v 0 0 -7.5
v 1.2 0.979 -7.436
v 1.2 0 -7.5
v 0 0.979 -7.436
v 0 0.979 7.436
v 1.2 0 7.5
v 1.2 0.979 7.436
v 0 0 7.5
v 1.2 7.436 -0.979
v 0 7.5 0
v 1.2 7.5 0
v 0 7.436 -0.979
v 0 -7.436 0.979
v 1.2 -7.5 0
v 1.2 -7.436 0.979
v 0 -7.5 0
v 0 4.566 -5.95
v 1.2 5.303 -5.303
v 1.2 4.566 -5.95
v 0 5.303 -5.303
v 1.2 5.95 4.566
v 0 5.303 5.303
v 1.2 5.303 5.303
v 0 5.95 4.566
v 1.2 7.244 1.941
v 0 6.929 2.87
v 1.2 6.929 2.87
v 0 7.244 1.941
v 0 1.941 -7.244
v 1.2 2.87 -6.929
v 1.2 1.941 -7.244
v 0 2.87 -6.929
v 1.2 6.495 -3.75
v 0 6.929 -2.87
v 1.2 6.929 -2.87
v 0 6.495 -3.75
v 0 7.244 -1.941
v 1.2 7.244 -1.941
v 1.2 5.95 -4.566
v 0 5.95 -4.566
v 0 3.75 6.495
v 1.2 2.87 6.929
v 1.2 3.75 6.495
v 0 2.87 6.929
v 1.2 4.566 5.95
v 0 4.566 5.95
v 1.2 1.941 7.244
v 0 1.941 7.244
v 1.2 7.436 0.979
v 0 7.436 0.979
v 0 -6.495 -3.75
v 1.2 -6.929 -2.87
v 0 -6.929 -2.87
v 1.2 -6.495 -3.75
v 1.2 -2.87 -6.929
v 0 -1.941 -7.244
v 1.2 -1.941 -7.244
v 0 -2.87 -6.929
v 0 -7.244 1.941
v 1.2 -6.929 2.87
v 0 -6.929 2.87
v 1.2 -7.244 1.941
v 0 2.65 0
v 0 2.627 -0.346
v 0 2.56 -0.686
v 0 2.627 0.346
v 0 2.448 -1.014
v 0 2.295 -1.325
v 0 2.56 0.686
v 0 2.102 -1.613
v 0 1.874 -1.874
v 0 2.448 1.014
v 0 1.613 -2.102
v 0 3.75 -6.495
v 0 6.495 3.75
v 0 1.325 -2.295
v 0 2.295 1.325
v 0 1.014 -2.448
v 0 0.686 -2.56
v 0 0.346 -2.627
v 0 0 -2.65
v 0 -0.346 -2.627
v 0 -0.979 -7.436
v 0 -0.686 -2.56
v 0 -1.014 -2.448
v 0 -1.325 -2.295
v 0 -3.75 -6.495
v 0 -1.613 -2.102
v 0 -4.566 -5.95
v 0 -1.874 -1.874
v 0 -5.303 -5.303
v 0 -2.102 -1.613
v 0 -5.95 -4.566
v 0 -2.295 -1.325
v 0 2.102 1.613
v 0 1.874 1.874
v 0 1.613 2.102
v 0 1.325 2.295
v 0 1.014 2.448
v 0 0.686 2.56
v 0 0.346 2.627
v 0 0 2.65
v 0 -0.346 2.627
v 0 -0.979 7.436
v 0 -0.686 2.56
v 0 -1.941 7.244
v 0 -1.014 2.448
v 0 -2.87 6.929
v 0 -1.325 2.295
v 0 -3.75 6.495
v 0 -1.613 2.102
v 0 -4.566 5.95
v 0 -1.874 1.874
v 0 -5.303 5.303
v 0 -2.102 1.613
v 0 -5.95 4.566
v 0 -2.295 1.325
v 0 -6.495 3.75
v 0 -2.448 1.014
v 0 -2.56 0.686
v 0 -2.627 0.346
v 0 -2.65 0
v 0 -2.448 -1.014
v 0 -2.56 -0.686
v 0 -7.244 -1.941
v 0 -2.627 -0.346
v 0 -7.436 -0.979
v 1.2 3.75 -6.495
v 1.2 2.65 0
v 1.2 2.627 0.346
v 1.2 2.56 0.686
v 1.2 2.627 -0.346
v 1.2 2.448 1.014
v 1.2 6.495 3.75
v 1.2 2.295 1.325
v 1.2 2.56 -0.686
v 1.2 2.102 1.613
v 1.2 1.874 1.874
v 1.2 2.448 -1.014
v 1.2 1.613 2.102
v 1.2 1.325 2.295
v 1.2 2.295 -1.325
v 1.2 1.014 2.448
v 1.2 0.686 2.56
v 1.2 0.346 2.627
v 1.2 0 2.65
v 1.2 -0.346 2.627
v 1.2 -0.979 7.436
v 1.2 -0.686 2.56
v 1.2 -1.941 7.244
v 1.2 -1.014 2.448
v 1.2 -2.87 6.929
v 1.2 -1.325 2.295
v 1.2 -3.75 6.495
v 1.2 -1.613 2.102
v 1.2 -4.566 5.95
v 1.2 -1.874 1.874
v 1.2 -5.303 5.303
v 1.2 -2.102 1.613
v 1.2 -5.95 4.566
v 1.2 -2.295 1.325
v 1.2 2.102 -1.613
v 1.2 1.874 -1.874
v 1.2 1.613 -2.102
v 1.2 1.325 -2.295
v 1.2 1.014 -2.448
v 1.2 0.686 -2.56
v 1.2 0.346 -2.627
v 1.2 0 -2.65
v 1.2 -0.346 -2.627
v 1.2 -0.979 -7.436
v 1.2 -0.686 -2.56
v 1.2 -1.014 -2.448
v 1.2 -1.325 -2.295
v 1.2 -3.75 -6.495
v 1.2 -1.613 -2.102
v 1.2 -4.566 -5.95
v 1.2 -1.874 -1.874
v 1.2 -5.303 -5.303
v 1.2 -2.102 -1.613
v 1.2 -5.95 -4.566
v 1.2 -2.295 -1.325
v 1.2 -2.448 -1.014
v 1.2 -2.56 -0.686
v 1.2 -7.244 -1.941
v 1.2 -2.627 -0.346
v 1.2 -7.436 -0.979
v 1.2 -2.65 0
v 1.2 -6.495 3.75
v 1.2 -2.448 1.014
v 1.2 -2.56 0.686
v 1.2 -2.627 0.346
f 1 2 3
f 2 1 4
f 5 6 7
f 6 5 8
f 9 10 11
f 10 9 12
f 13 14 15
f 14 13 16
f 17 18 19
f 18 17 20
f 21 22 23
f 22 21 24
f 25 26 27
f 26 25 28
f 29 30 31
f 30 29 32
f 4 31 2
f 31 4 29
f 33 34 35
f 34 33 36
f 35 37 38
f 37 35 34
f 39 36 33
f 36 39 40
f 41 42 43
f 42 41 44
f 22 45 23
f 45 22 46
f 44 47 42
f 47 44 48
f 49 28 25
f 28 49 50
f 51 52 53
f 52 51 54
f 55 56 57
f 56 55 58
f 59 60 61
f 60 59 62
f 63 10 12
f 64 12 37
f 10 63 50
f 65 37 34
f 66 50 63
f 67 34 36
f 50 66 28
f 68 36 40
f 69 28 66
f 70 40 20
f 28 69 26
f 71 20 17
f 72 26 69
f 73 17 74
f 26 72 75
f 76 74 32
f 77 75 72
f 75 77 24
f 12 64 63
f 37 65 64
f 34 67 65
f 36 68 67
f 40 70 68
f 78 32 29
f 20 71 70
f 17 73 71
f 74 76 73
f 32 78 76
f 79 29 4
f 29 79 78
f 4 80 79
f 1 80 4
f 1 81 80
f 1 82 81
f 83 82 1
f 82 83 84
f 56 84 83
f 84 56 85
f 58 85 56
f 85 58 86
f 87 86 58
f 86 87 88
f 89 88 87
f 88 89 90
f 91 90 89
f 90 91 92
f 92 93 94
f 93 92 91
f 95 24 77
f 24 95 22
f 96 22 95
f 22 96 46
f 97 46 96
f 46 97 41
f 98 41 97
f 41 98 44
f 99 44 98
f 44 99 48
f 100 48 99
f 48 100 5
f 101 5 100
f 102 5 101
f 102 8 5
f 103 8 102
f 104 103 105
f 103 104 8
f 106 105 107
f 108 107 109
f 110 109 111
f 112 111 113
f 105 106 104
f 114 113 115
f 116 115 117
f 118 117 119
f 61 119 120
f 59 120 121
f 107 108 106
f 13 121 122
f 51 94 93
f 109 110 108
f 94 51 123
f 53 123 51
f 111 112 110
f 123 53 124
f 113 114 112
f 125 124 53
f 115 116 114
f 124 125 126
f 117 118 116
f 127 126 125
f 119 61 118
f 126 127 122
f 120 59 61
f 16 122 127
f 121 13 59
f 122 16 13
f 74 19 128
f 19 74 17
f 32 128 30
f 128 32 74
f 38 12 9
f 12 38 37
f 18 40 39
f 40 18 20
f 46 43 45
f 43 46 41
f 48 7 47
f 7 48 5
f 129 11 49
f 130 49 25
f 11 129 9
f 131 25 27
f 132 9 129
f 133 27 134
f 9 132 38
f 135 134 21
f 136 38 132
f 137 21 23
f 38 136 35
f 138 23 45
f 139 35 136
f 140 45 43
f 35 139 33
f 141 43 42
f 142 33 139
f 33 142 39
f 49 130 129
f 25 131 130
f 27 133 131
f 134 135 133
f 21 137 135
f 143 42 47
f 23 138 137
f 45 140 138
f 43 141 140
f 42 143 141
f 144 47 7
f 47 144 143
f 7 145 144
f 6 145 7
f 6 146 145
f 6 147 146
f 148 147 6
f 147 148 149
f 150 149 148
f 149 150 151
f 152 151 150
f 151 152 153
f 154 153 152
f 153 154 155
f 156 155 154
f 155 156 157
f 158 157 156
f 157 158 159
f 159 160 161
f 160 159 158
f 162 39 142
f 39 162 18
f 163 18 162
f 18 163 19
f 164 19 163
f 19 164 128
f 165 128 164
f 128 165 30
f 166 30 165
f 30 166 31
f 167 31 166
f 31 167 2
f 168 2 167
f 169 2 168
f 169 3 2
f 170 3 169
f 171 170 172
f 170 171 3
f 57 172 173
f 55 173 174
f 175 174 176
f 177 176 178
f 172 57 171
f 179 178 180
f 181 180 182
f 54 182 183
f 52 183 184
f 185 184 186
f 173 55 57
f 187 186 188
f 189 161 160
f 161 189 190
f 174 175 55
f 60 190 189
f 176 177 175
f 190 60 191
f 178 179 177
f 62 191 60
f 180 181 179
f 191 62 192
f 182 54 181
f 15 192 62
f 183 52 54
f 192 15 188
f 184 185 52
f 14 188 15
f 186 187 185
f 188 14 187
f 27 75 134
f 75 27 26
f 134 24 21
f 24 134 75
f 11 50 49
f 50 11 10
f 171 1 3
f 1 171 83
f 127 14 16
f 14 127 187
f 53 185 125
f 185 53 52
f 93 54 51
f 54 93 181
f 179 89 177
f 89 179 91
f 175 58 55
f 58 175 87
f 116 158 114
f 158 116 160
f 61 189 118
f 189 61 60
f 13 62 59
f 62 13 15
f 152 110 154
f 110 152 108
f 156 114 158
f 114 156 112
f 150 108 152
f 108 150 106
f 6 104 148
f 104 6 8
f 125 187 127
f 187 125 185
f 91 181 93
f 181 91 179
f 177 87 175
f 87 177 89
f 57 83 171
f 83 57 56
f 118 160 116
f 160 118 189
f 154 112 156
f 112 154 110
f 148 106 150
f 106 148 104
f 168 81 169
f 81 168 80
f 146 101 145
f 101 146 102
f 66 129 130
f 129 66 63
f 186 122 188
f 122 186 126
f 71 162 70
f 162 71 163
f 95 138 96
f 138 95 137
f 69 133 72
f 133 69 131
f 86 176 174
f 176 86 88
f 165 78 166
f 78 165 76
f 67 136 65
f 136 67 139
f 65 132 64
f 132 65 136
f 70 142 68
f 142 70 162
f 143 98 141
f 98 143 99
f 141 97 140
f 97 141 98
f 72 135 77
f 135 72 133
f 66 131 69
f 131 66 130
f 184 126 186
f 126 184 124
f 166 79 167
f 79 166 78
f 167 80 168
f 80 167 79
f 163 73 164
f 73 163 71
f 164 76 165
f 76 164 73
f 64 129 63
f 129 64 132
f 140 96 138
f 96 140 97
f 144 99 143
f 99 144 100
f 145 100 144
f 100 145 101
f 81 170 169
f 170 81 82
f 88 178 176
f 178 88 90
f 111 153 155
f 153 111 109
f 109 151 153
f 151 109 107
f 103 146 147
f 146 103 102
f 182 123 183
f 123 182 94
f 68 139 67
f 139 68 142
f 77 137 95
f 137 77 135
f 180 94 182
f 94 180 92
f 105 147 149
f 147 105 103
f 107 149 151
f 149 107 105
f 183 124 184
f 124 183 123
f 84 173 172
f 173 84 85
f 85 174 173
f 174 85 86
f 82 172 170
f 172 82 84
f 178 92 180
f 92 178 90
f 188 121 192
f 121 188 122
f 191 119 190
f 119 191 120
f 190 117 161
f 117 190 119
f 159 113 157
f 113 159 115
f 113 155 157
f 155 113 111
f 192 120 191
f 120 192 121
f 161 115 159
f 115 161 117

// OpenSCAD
/**********************************************************************************************************************
 **
 ** parts/vitamins/washer_large_M5.scad
 **
 ** This file renders a washer of the dimensions specified by the file name.
 **
 **********************************************************************************************************************/

$fn = 48;

rotate([0, 90, 0])
	difference() {
		cylinder(d = 15.0, h = 1.2);
		cylinder(d =  5.3, h = 1.2);
	}
